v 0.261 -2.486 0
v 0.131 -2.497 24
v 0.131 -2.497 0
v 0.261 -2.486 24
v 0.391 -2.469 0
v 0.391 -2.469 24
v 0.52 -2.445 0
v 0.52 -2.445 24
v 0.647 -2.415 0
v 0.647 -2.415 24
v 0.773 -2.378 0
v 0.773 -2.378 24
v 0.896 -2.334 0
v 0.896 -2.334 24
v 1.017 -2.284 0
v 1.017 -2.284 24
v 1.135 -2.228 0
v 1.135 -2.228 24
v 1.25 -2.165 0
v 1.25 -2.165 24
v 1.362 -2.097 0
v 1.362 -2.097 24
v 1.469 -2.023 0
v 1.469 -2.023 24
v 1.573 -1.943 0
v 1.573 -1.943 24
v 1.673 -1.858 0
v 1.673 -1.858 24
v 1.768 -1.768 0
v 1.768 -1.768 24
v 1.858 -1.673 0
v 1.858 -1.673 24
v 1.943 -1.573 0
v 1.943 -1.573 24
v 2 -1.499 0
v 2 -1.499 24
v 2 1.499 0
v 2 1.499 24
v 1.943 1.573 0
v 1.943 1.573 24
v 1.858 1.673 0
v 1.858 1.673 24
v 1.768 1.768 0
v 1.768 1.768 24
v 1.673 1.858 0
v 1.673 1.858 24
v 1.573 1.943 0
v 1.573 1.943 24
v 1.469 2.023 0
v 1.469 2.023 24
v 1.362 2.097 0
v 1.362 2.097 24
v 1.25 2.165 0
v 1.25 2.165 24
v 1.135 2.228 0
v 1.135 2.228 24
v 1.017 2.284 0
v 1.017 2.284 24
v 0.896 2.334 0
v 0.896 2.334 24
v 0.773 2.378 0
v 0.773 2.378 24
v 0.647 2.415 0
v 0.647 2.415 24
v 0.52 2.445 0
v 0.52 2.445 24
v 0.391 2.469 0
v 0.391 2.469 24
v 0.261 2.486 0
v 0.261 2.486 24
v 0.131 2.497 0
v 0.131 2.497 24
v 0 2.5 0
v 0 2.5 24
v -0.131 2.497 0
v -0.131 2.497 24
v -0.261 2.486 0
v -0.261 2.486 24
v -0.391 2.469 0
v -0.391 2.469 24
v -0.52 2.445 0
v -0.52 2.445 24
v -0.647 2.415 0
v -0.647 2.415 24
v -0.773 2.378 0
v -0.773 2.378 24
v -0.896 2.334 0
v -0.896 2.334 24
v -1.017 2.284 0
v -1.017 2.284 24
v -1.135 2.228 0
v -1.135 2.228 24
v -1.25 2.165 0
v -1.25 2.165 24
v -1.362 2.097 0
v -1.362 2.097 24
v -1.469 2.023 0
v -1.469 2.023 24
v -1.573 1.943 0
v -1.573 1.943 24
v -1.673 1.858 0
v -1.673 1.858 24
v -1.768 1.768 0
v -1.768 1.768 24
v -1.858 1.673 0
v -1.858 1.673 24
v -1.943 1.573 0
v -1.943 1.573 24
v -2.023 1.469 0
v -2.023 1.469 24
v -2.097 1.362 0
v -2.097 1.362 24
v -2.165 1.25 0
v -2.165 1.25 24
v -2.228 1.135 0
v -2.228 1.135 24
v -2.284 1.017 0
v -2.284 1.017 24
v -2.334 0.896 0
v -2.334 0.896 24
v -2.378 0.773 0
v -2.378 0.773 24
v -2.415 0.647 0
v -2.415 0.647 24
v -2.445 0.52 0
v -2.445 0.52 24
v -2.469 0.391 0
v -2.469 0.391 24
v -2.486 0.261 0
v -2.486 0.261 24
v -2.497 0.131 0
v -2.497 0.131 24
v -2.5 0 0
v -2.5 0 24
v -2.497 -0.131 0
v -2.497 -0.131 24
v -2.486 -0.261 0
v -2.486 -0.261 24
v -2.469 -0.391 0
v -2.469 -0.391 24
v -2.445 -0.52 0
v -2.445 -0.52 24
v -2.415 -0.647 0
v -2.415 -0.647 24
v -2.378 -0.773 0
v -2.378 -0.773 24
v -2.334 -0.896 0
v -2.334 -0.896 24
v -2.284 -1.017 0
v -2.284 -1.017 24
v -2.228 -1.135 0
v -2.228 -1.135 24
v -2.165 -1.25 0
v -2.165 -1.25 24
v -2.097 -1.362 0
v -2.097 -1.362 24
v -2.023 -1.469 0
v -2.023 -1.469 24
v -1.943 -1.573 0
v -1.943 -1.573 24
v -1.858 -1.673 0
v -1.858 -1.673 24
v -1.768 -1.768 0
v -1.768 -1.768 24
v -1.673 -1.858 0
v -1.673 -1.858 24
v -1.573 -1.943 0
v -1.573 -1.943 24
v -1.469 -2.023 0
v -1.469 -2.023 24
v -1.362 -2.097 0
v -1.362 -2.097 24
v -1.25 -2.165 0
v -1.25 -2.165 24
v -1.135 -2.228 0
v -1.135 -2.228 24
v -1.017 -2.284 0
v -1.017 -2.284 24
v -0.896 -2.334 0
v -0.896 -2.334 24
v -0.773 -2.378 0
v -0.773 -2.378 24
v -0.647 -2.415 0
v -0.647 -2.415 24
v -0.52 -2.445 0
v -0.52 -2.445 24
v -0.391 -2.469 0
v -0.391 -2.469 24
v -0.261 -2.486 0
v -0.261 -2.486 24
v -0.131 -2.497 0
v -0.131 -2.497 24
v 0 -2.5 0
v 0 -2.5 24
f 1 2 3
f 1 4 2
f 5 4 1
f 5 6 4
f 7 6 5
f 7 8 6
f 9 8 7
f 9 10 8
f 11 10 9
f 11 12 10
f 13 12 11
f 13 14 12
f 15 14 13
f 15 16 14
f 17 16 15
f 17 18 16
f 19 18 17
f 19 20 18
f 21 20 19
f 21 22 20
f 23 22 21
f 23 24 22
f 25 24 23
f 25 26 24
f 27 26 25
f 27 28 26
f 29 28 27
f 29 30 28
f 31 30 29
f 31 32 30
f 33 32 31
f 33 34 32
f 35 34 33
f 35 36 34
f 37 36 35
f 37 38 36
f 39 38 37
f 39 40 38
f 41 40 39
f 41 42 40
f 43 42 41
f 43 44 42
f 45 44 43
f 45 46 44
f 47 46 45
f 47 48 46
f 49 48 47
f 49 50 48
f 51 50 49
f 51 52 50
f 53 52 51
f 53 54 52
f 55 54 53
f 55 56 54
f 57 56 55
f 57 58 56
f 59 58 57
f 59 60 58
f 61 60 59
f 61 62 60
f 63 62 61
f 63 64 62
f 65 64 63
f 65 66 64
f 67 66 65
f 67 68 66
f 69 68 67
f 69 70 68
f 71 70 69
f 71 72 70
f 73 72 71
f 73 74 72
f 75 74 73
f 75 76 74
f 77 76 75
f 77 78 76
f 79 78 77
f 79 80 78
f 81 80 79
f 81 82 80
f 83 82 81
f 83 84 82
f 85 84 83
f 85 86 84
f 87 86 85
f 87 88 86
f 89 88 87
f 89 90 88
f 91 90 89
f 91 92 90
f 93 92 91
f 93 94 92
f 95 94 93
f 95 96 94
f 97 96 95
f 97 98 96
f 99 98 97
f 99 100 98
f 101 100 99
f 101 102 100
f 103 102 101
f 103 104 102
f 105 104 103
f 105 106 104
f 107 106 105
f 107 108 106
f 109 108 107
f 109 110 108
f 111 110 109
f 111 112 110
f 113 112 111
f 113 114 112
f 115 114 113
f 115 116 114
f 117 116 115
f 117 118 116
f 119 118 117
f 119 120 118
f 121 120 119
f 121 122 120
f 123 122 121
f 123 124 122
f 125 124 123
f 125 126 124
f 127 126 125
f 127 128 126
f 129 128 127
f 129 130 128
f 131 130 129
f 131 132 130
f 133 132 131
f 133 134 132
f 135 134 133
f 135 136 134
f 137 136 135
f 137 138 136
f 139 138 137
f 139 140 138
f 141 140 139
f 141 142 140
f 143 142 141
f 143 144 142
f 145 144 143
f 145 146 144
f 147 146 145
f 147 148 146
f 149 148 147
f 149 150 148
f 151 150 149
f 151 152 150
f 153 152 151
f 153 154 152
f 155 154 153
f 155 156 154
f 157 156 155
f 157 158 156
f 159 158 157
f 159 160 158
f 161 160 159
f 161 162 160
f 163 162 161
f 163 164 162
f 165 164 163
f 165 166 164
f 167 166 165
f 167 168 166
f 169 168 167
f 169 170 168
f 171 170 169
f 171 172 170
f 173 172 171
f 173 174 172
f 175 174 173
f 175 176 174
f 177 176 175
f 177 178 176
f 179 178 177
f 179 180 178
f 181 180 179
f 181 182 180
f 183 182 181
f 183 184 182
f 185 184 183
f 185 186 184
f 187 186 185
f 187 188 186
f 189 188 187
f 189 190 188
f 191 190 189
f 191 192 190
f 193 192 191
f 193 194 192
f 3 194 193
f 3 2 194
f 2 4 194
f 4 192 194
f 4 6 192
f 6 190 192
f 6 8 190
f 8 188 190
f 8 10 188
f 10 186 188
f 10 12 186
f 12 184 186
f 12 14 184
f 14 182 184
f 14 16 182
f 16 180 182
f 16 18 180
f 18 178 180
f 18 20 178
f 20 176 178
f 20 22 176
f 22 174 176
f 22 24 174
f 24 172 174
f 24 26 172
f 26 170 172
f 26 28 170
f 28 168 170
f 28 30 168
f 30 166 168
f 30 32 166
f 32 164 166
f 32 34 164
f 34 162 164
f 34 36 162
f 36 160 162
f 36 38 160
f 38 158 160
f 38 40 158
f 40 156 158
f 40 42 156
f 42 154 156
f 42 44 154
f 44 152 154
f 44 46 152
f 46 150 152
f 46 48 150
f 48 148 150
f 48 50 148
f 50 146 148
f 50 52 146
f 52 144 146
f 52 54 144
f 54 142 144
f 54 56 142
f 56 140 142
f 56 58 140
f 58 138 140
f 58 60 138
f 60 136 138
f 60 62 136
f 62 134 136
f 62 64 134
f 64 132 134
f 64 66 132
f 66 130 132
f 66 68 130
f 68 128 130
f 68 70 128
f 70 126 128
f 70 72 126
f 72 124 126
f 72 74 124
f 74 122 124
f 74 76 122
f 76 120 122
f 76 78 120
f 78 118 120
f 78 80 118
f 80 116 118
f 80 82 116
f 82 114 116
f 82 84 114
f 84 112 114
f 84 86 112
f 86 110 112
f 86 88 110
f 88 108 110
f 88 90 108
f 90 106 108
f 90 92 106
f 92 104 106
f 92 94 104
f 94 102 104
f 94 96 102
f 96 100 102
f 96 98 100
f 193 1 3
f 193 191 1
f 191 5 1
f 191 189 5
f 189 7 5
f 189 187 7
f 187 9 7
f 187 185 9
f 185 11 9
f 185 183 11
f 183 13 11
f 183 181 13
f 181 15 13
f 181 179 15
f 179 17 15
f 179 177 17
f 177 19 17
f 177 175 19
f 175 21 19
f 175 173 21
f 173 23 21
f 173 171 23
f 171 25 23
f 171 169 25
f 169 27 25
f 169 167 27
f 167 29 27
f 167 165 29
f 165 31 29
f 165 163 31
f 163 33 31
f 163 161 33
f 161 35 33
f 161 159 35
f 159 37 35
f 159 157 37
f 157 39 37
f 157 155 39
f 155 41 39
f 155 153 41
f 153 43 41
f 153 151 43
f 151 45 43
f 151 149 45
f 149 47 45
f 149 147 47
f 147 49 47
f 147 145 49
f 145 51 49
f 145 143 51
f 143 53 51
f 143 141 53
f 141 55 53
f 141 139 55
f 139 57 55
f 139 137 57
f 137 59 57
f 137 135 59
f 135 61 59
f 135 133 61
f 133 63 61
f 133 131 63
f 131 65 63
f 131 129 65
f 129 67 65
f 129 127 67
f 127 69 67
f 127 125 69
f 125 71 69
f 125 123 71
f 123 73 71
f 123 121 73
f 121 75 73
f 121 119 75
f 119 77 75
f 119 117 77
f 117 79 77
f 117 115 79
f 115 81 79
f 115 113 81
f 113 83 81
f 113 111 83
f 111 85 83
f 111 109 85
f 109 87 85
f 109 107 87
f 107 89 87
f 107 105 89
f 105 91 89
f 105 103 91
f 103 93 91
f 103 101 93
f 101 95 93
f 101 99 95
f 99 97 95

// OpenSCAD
// file: C:/gh/oomlout_oobb_part_motor_gearbox_wave_drive_version_5/parts/oobb_part_motor_gearbox_wave_drive_version_5_12_to_1_reduction/nema17_reference.scad
// Visual reference matching the previous cycloidal project's 40 mm motor envelope.
// Face is Z=0; motor body extends towards -Z and shaft towards +Z.
// End caps, corner chamfers and connector are illustrative external details.
// This is purchased reference hardware, never a printable gearbox component.
module nema17_outline(width=42.3,depth=6,chamfer=3) {
    w=width/2;
    linear_extrude(depth) polygon([
        [-w+chamfer,-w],[w-chamfer,-w],[w,-w+chamfer],[w,w-chamfer],
        [w-chamfer,w],[-w+chamfer,w],[-w,w-chamfer],[-w,-w+chamfer]
    ]);
}
module nema17_front() {
    difference() {
        translate([0,0,-motor_cap_depth])
            nema17_outline(motor_body_width,motor_cap_depth,motor_corner_chamfer);
        for(x=[-motor_hole_pitch/2,motor_hole_pitch/2],y=[-motor_hole_pitch/2,motor_hole_pitch/2])
            translate([x,y,-motor_thread_depth]) cylinder(d=3,h=motor_thread_depth+0.01);
        translate([0,0,-motor_cap_depth-0.01]) cylinder(d=motor_shaft_diameter,h=motor_cap_depth+0.02);
    }
}
module nema17_stator() {
    translate([0,0,-motor_body_depth+motor_cap_depth])
        nema17_outline(motor_body_width,motor_body_depth-2*motor_cap_depth,motor_corner_chamfer);
}
module nema17_rear() {
    difference() {
        translate([0,0,-motor_body_depth])
            nema17_outline(motor_body_width,motor_cap_depth,motor_corner_chamfer);
        for(x=[-motor_hole_pitch/2,motor_hole_pitch/2],y=[-motor_hole_pitch/2,motor_hole_pitch/2])
            translate([x,y,-motor_body_depth-0.01]) cylinder(d=4.5,h=1.2);
    }
}
module nema17_pilot() {
    difference() {
        cylinder(d=motor_pilot_diameter,h=motor_pilot_height);
        translate([0,0,-0.01]) cylinder(d=motor_shaft_diameter,h=motor_pilot_height+0.02);
    }
}
module nema17_shaft() {
    linear_extrude(motor_shaft_length) intersection() {
        circle(d=motor_shaft_diameter);
        translate([-10,-10]) square([10+motor_shaft_diameter/2-motor_shaft_flat_depth,20]);
    }
}
module nema17_connector() {
    // Indicative connector envelope; actual cable exit depends on motor model.
    translate([-7,motor_body_width/2-1,-motor_body_depth+motor_cap_depth])
        cube([14,5,7]);
}
module nema17_reference() {
    color("Silver") { nema17_front(); nema17_rear(); nema17_pilot(); nema17_shaft(); }
    color([0.08,0.08,0.08]) nema17_stator();
    color([0.2,0.2,0.2]) nema17_connector();
}
// file: C:/gh/oomlout_oobb_part_motor_gearbox_wave_drive_version_5/parts/oobb_part_motor_gearbox_wave_drive_version_5_12_to_1_reduction/motor_reference_parameters.scad
// Purchased motor envelope. Recipe defines body, shaft and mounting dimensions.
motor_body_depth = 40.0;
motor_shaft_length = 24.0;
motor_hole_pitch = 31.0;
motor_thread_depth = 6.0;
motor_pilot_diameter = 22.0;
motor_pilot_height = 2.0;
motor_shaft_end_clearance = 0.5;
motor_thread_engagement = 5.2;
motor_shaft_diameter = 5.0;
motor_body_width = 42.3;
motor_cap_depth = 6.0;
motor_corner_chamfer = 3.0;
motor_shaft_flat_depth = 0.5;
motor_face_z = 0.0;
// main file
include <C:/gh/oomlout_oobb_part_motor_gearbox_wave_drive_version_5/parts/oobb_part_motor_gearbox_wave_drive_version_5_12_to_1_reduction/motor_reference_parameters.scad>
include <C:/gh/oomlout_oobb_part_motor_gearbox_wave_drive_version_5/parts/oobb_part_motor_gearbox_wave_drive_version_5_12_to_1_reduction/nema17_reference.scad>
$fn=120;
nema17_shaft();
